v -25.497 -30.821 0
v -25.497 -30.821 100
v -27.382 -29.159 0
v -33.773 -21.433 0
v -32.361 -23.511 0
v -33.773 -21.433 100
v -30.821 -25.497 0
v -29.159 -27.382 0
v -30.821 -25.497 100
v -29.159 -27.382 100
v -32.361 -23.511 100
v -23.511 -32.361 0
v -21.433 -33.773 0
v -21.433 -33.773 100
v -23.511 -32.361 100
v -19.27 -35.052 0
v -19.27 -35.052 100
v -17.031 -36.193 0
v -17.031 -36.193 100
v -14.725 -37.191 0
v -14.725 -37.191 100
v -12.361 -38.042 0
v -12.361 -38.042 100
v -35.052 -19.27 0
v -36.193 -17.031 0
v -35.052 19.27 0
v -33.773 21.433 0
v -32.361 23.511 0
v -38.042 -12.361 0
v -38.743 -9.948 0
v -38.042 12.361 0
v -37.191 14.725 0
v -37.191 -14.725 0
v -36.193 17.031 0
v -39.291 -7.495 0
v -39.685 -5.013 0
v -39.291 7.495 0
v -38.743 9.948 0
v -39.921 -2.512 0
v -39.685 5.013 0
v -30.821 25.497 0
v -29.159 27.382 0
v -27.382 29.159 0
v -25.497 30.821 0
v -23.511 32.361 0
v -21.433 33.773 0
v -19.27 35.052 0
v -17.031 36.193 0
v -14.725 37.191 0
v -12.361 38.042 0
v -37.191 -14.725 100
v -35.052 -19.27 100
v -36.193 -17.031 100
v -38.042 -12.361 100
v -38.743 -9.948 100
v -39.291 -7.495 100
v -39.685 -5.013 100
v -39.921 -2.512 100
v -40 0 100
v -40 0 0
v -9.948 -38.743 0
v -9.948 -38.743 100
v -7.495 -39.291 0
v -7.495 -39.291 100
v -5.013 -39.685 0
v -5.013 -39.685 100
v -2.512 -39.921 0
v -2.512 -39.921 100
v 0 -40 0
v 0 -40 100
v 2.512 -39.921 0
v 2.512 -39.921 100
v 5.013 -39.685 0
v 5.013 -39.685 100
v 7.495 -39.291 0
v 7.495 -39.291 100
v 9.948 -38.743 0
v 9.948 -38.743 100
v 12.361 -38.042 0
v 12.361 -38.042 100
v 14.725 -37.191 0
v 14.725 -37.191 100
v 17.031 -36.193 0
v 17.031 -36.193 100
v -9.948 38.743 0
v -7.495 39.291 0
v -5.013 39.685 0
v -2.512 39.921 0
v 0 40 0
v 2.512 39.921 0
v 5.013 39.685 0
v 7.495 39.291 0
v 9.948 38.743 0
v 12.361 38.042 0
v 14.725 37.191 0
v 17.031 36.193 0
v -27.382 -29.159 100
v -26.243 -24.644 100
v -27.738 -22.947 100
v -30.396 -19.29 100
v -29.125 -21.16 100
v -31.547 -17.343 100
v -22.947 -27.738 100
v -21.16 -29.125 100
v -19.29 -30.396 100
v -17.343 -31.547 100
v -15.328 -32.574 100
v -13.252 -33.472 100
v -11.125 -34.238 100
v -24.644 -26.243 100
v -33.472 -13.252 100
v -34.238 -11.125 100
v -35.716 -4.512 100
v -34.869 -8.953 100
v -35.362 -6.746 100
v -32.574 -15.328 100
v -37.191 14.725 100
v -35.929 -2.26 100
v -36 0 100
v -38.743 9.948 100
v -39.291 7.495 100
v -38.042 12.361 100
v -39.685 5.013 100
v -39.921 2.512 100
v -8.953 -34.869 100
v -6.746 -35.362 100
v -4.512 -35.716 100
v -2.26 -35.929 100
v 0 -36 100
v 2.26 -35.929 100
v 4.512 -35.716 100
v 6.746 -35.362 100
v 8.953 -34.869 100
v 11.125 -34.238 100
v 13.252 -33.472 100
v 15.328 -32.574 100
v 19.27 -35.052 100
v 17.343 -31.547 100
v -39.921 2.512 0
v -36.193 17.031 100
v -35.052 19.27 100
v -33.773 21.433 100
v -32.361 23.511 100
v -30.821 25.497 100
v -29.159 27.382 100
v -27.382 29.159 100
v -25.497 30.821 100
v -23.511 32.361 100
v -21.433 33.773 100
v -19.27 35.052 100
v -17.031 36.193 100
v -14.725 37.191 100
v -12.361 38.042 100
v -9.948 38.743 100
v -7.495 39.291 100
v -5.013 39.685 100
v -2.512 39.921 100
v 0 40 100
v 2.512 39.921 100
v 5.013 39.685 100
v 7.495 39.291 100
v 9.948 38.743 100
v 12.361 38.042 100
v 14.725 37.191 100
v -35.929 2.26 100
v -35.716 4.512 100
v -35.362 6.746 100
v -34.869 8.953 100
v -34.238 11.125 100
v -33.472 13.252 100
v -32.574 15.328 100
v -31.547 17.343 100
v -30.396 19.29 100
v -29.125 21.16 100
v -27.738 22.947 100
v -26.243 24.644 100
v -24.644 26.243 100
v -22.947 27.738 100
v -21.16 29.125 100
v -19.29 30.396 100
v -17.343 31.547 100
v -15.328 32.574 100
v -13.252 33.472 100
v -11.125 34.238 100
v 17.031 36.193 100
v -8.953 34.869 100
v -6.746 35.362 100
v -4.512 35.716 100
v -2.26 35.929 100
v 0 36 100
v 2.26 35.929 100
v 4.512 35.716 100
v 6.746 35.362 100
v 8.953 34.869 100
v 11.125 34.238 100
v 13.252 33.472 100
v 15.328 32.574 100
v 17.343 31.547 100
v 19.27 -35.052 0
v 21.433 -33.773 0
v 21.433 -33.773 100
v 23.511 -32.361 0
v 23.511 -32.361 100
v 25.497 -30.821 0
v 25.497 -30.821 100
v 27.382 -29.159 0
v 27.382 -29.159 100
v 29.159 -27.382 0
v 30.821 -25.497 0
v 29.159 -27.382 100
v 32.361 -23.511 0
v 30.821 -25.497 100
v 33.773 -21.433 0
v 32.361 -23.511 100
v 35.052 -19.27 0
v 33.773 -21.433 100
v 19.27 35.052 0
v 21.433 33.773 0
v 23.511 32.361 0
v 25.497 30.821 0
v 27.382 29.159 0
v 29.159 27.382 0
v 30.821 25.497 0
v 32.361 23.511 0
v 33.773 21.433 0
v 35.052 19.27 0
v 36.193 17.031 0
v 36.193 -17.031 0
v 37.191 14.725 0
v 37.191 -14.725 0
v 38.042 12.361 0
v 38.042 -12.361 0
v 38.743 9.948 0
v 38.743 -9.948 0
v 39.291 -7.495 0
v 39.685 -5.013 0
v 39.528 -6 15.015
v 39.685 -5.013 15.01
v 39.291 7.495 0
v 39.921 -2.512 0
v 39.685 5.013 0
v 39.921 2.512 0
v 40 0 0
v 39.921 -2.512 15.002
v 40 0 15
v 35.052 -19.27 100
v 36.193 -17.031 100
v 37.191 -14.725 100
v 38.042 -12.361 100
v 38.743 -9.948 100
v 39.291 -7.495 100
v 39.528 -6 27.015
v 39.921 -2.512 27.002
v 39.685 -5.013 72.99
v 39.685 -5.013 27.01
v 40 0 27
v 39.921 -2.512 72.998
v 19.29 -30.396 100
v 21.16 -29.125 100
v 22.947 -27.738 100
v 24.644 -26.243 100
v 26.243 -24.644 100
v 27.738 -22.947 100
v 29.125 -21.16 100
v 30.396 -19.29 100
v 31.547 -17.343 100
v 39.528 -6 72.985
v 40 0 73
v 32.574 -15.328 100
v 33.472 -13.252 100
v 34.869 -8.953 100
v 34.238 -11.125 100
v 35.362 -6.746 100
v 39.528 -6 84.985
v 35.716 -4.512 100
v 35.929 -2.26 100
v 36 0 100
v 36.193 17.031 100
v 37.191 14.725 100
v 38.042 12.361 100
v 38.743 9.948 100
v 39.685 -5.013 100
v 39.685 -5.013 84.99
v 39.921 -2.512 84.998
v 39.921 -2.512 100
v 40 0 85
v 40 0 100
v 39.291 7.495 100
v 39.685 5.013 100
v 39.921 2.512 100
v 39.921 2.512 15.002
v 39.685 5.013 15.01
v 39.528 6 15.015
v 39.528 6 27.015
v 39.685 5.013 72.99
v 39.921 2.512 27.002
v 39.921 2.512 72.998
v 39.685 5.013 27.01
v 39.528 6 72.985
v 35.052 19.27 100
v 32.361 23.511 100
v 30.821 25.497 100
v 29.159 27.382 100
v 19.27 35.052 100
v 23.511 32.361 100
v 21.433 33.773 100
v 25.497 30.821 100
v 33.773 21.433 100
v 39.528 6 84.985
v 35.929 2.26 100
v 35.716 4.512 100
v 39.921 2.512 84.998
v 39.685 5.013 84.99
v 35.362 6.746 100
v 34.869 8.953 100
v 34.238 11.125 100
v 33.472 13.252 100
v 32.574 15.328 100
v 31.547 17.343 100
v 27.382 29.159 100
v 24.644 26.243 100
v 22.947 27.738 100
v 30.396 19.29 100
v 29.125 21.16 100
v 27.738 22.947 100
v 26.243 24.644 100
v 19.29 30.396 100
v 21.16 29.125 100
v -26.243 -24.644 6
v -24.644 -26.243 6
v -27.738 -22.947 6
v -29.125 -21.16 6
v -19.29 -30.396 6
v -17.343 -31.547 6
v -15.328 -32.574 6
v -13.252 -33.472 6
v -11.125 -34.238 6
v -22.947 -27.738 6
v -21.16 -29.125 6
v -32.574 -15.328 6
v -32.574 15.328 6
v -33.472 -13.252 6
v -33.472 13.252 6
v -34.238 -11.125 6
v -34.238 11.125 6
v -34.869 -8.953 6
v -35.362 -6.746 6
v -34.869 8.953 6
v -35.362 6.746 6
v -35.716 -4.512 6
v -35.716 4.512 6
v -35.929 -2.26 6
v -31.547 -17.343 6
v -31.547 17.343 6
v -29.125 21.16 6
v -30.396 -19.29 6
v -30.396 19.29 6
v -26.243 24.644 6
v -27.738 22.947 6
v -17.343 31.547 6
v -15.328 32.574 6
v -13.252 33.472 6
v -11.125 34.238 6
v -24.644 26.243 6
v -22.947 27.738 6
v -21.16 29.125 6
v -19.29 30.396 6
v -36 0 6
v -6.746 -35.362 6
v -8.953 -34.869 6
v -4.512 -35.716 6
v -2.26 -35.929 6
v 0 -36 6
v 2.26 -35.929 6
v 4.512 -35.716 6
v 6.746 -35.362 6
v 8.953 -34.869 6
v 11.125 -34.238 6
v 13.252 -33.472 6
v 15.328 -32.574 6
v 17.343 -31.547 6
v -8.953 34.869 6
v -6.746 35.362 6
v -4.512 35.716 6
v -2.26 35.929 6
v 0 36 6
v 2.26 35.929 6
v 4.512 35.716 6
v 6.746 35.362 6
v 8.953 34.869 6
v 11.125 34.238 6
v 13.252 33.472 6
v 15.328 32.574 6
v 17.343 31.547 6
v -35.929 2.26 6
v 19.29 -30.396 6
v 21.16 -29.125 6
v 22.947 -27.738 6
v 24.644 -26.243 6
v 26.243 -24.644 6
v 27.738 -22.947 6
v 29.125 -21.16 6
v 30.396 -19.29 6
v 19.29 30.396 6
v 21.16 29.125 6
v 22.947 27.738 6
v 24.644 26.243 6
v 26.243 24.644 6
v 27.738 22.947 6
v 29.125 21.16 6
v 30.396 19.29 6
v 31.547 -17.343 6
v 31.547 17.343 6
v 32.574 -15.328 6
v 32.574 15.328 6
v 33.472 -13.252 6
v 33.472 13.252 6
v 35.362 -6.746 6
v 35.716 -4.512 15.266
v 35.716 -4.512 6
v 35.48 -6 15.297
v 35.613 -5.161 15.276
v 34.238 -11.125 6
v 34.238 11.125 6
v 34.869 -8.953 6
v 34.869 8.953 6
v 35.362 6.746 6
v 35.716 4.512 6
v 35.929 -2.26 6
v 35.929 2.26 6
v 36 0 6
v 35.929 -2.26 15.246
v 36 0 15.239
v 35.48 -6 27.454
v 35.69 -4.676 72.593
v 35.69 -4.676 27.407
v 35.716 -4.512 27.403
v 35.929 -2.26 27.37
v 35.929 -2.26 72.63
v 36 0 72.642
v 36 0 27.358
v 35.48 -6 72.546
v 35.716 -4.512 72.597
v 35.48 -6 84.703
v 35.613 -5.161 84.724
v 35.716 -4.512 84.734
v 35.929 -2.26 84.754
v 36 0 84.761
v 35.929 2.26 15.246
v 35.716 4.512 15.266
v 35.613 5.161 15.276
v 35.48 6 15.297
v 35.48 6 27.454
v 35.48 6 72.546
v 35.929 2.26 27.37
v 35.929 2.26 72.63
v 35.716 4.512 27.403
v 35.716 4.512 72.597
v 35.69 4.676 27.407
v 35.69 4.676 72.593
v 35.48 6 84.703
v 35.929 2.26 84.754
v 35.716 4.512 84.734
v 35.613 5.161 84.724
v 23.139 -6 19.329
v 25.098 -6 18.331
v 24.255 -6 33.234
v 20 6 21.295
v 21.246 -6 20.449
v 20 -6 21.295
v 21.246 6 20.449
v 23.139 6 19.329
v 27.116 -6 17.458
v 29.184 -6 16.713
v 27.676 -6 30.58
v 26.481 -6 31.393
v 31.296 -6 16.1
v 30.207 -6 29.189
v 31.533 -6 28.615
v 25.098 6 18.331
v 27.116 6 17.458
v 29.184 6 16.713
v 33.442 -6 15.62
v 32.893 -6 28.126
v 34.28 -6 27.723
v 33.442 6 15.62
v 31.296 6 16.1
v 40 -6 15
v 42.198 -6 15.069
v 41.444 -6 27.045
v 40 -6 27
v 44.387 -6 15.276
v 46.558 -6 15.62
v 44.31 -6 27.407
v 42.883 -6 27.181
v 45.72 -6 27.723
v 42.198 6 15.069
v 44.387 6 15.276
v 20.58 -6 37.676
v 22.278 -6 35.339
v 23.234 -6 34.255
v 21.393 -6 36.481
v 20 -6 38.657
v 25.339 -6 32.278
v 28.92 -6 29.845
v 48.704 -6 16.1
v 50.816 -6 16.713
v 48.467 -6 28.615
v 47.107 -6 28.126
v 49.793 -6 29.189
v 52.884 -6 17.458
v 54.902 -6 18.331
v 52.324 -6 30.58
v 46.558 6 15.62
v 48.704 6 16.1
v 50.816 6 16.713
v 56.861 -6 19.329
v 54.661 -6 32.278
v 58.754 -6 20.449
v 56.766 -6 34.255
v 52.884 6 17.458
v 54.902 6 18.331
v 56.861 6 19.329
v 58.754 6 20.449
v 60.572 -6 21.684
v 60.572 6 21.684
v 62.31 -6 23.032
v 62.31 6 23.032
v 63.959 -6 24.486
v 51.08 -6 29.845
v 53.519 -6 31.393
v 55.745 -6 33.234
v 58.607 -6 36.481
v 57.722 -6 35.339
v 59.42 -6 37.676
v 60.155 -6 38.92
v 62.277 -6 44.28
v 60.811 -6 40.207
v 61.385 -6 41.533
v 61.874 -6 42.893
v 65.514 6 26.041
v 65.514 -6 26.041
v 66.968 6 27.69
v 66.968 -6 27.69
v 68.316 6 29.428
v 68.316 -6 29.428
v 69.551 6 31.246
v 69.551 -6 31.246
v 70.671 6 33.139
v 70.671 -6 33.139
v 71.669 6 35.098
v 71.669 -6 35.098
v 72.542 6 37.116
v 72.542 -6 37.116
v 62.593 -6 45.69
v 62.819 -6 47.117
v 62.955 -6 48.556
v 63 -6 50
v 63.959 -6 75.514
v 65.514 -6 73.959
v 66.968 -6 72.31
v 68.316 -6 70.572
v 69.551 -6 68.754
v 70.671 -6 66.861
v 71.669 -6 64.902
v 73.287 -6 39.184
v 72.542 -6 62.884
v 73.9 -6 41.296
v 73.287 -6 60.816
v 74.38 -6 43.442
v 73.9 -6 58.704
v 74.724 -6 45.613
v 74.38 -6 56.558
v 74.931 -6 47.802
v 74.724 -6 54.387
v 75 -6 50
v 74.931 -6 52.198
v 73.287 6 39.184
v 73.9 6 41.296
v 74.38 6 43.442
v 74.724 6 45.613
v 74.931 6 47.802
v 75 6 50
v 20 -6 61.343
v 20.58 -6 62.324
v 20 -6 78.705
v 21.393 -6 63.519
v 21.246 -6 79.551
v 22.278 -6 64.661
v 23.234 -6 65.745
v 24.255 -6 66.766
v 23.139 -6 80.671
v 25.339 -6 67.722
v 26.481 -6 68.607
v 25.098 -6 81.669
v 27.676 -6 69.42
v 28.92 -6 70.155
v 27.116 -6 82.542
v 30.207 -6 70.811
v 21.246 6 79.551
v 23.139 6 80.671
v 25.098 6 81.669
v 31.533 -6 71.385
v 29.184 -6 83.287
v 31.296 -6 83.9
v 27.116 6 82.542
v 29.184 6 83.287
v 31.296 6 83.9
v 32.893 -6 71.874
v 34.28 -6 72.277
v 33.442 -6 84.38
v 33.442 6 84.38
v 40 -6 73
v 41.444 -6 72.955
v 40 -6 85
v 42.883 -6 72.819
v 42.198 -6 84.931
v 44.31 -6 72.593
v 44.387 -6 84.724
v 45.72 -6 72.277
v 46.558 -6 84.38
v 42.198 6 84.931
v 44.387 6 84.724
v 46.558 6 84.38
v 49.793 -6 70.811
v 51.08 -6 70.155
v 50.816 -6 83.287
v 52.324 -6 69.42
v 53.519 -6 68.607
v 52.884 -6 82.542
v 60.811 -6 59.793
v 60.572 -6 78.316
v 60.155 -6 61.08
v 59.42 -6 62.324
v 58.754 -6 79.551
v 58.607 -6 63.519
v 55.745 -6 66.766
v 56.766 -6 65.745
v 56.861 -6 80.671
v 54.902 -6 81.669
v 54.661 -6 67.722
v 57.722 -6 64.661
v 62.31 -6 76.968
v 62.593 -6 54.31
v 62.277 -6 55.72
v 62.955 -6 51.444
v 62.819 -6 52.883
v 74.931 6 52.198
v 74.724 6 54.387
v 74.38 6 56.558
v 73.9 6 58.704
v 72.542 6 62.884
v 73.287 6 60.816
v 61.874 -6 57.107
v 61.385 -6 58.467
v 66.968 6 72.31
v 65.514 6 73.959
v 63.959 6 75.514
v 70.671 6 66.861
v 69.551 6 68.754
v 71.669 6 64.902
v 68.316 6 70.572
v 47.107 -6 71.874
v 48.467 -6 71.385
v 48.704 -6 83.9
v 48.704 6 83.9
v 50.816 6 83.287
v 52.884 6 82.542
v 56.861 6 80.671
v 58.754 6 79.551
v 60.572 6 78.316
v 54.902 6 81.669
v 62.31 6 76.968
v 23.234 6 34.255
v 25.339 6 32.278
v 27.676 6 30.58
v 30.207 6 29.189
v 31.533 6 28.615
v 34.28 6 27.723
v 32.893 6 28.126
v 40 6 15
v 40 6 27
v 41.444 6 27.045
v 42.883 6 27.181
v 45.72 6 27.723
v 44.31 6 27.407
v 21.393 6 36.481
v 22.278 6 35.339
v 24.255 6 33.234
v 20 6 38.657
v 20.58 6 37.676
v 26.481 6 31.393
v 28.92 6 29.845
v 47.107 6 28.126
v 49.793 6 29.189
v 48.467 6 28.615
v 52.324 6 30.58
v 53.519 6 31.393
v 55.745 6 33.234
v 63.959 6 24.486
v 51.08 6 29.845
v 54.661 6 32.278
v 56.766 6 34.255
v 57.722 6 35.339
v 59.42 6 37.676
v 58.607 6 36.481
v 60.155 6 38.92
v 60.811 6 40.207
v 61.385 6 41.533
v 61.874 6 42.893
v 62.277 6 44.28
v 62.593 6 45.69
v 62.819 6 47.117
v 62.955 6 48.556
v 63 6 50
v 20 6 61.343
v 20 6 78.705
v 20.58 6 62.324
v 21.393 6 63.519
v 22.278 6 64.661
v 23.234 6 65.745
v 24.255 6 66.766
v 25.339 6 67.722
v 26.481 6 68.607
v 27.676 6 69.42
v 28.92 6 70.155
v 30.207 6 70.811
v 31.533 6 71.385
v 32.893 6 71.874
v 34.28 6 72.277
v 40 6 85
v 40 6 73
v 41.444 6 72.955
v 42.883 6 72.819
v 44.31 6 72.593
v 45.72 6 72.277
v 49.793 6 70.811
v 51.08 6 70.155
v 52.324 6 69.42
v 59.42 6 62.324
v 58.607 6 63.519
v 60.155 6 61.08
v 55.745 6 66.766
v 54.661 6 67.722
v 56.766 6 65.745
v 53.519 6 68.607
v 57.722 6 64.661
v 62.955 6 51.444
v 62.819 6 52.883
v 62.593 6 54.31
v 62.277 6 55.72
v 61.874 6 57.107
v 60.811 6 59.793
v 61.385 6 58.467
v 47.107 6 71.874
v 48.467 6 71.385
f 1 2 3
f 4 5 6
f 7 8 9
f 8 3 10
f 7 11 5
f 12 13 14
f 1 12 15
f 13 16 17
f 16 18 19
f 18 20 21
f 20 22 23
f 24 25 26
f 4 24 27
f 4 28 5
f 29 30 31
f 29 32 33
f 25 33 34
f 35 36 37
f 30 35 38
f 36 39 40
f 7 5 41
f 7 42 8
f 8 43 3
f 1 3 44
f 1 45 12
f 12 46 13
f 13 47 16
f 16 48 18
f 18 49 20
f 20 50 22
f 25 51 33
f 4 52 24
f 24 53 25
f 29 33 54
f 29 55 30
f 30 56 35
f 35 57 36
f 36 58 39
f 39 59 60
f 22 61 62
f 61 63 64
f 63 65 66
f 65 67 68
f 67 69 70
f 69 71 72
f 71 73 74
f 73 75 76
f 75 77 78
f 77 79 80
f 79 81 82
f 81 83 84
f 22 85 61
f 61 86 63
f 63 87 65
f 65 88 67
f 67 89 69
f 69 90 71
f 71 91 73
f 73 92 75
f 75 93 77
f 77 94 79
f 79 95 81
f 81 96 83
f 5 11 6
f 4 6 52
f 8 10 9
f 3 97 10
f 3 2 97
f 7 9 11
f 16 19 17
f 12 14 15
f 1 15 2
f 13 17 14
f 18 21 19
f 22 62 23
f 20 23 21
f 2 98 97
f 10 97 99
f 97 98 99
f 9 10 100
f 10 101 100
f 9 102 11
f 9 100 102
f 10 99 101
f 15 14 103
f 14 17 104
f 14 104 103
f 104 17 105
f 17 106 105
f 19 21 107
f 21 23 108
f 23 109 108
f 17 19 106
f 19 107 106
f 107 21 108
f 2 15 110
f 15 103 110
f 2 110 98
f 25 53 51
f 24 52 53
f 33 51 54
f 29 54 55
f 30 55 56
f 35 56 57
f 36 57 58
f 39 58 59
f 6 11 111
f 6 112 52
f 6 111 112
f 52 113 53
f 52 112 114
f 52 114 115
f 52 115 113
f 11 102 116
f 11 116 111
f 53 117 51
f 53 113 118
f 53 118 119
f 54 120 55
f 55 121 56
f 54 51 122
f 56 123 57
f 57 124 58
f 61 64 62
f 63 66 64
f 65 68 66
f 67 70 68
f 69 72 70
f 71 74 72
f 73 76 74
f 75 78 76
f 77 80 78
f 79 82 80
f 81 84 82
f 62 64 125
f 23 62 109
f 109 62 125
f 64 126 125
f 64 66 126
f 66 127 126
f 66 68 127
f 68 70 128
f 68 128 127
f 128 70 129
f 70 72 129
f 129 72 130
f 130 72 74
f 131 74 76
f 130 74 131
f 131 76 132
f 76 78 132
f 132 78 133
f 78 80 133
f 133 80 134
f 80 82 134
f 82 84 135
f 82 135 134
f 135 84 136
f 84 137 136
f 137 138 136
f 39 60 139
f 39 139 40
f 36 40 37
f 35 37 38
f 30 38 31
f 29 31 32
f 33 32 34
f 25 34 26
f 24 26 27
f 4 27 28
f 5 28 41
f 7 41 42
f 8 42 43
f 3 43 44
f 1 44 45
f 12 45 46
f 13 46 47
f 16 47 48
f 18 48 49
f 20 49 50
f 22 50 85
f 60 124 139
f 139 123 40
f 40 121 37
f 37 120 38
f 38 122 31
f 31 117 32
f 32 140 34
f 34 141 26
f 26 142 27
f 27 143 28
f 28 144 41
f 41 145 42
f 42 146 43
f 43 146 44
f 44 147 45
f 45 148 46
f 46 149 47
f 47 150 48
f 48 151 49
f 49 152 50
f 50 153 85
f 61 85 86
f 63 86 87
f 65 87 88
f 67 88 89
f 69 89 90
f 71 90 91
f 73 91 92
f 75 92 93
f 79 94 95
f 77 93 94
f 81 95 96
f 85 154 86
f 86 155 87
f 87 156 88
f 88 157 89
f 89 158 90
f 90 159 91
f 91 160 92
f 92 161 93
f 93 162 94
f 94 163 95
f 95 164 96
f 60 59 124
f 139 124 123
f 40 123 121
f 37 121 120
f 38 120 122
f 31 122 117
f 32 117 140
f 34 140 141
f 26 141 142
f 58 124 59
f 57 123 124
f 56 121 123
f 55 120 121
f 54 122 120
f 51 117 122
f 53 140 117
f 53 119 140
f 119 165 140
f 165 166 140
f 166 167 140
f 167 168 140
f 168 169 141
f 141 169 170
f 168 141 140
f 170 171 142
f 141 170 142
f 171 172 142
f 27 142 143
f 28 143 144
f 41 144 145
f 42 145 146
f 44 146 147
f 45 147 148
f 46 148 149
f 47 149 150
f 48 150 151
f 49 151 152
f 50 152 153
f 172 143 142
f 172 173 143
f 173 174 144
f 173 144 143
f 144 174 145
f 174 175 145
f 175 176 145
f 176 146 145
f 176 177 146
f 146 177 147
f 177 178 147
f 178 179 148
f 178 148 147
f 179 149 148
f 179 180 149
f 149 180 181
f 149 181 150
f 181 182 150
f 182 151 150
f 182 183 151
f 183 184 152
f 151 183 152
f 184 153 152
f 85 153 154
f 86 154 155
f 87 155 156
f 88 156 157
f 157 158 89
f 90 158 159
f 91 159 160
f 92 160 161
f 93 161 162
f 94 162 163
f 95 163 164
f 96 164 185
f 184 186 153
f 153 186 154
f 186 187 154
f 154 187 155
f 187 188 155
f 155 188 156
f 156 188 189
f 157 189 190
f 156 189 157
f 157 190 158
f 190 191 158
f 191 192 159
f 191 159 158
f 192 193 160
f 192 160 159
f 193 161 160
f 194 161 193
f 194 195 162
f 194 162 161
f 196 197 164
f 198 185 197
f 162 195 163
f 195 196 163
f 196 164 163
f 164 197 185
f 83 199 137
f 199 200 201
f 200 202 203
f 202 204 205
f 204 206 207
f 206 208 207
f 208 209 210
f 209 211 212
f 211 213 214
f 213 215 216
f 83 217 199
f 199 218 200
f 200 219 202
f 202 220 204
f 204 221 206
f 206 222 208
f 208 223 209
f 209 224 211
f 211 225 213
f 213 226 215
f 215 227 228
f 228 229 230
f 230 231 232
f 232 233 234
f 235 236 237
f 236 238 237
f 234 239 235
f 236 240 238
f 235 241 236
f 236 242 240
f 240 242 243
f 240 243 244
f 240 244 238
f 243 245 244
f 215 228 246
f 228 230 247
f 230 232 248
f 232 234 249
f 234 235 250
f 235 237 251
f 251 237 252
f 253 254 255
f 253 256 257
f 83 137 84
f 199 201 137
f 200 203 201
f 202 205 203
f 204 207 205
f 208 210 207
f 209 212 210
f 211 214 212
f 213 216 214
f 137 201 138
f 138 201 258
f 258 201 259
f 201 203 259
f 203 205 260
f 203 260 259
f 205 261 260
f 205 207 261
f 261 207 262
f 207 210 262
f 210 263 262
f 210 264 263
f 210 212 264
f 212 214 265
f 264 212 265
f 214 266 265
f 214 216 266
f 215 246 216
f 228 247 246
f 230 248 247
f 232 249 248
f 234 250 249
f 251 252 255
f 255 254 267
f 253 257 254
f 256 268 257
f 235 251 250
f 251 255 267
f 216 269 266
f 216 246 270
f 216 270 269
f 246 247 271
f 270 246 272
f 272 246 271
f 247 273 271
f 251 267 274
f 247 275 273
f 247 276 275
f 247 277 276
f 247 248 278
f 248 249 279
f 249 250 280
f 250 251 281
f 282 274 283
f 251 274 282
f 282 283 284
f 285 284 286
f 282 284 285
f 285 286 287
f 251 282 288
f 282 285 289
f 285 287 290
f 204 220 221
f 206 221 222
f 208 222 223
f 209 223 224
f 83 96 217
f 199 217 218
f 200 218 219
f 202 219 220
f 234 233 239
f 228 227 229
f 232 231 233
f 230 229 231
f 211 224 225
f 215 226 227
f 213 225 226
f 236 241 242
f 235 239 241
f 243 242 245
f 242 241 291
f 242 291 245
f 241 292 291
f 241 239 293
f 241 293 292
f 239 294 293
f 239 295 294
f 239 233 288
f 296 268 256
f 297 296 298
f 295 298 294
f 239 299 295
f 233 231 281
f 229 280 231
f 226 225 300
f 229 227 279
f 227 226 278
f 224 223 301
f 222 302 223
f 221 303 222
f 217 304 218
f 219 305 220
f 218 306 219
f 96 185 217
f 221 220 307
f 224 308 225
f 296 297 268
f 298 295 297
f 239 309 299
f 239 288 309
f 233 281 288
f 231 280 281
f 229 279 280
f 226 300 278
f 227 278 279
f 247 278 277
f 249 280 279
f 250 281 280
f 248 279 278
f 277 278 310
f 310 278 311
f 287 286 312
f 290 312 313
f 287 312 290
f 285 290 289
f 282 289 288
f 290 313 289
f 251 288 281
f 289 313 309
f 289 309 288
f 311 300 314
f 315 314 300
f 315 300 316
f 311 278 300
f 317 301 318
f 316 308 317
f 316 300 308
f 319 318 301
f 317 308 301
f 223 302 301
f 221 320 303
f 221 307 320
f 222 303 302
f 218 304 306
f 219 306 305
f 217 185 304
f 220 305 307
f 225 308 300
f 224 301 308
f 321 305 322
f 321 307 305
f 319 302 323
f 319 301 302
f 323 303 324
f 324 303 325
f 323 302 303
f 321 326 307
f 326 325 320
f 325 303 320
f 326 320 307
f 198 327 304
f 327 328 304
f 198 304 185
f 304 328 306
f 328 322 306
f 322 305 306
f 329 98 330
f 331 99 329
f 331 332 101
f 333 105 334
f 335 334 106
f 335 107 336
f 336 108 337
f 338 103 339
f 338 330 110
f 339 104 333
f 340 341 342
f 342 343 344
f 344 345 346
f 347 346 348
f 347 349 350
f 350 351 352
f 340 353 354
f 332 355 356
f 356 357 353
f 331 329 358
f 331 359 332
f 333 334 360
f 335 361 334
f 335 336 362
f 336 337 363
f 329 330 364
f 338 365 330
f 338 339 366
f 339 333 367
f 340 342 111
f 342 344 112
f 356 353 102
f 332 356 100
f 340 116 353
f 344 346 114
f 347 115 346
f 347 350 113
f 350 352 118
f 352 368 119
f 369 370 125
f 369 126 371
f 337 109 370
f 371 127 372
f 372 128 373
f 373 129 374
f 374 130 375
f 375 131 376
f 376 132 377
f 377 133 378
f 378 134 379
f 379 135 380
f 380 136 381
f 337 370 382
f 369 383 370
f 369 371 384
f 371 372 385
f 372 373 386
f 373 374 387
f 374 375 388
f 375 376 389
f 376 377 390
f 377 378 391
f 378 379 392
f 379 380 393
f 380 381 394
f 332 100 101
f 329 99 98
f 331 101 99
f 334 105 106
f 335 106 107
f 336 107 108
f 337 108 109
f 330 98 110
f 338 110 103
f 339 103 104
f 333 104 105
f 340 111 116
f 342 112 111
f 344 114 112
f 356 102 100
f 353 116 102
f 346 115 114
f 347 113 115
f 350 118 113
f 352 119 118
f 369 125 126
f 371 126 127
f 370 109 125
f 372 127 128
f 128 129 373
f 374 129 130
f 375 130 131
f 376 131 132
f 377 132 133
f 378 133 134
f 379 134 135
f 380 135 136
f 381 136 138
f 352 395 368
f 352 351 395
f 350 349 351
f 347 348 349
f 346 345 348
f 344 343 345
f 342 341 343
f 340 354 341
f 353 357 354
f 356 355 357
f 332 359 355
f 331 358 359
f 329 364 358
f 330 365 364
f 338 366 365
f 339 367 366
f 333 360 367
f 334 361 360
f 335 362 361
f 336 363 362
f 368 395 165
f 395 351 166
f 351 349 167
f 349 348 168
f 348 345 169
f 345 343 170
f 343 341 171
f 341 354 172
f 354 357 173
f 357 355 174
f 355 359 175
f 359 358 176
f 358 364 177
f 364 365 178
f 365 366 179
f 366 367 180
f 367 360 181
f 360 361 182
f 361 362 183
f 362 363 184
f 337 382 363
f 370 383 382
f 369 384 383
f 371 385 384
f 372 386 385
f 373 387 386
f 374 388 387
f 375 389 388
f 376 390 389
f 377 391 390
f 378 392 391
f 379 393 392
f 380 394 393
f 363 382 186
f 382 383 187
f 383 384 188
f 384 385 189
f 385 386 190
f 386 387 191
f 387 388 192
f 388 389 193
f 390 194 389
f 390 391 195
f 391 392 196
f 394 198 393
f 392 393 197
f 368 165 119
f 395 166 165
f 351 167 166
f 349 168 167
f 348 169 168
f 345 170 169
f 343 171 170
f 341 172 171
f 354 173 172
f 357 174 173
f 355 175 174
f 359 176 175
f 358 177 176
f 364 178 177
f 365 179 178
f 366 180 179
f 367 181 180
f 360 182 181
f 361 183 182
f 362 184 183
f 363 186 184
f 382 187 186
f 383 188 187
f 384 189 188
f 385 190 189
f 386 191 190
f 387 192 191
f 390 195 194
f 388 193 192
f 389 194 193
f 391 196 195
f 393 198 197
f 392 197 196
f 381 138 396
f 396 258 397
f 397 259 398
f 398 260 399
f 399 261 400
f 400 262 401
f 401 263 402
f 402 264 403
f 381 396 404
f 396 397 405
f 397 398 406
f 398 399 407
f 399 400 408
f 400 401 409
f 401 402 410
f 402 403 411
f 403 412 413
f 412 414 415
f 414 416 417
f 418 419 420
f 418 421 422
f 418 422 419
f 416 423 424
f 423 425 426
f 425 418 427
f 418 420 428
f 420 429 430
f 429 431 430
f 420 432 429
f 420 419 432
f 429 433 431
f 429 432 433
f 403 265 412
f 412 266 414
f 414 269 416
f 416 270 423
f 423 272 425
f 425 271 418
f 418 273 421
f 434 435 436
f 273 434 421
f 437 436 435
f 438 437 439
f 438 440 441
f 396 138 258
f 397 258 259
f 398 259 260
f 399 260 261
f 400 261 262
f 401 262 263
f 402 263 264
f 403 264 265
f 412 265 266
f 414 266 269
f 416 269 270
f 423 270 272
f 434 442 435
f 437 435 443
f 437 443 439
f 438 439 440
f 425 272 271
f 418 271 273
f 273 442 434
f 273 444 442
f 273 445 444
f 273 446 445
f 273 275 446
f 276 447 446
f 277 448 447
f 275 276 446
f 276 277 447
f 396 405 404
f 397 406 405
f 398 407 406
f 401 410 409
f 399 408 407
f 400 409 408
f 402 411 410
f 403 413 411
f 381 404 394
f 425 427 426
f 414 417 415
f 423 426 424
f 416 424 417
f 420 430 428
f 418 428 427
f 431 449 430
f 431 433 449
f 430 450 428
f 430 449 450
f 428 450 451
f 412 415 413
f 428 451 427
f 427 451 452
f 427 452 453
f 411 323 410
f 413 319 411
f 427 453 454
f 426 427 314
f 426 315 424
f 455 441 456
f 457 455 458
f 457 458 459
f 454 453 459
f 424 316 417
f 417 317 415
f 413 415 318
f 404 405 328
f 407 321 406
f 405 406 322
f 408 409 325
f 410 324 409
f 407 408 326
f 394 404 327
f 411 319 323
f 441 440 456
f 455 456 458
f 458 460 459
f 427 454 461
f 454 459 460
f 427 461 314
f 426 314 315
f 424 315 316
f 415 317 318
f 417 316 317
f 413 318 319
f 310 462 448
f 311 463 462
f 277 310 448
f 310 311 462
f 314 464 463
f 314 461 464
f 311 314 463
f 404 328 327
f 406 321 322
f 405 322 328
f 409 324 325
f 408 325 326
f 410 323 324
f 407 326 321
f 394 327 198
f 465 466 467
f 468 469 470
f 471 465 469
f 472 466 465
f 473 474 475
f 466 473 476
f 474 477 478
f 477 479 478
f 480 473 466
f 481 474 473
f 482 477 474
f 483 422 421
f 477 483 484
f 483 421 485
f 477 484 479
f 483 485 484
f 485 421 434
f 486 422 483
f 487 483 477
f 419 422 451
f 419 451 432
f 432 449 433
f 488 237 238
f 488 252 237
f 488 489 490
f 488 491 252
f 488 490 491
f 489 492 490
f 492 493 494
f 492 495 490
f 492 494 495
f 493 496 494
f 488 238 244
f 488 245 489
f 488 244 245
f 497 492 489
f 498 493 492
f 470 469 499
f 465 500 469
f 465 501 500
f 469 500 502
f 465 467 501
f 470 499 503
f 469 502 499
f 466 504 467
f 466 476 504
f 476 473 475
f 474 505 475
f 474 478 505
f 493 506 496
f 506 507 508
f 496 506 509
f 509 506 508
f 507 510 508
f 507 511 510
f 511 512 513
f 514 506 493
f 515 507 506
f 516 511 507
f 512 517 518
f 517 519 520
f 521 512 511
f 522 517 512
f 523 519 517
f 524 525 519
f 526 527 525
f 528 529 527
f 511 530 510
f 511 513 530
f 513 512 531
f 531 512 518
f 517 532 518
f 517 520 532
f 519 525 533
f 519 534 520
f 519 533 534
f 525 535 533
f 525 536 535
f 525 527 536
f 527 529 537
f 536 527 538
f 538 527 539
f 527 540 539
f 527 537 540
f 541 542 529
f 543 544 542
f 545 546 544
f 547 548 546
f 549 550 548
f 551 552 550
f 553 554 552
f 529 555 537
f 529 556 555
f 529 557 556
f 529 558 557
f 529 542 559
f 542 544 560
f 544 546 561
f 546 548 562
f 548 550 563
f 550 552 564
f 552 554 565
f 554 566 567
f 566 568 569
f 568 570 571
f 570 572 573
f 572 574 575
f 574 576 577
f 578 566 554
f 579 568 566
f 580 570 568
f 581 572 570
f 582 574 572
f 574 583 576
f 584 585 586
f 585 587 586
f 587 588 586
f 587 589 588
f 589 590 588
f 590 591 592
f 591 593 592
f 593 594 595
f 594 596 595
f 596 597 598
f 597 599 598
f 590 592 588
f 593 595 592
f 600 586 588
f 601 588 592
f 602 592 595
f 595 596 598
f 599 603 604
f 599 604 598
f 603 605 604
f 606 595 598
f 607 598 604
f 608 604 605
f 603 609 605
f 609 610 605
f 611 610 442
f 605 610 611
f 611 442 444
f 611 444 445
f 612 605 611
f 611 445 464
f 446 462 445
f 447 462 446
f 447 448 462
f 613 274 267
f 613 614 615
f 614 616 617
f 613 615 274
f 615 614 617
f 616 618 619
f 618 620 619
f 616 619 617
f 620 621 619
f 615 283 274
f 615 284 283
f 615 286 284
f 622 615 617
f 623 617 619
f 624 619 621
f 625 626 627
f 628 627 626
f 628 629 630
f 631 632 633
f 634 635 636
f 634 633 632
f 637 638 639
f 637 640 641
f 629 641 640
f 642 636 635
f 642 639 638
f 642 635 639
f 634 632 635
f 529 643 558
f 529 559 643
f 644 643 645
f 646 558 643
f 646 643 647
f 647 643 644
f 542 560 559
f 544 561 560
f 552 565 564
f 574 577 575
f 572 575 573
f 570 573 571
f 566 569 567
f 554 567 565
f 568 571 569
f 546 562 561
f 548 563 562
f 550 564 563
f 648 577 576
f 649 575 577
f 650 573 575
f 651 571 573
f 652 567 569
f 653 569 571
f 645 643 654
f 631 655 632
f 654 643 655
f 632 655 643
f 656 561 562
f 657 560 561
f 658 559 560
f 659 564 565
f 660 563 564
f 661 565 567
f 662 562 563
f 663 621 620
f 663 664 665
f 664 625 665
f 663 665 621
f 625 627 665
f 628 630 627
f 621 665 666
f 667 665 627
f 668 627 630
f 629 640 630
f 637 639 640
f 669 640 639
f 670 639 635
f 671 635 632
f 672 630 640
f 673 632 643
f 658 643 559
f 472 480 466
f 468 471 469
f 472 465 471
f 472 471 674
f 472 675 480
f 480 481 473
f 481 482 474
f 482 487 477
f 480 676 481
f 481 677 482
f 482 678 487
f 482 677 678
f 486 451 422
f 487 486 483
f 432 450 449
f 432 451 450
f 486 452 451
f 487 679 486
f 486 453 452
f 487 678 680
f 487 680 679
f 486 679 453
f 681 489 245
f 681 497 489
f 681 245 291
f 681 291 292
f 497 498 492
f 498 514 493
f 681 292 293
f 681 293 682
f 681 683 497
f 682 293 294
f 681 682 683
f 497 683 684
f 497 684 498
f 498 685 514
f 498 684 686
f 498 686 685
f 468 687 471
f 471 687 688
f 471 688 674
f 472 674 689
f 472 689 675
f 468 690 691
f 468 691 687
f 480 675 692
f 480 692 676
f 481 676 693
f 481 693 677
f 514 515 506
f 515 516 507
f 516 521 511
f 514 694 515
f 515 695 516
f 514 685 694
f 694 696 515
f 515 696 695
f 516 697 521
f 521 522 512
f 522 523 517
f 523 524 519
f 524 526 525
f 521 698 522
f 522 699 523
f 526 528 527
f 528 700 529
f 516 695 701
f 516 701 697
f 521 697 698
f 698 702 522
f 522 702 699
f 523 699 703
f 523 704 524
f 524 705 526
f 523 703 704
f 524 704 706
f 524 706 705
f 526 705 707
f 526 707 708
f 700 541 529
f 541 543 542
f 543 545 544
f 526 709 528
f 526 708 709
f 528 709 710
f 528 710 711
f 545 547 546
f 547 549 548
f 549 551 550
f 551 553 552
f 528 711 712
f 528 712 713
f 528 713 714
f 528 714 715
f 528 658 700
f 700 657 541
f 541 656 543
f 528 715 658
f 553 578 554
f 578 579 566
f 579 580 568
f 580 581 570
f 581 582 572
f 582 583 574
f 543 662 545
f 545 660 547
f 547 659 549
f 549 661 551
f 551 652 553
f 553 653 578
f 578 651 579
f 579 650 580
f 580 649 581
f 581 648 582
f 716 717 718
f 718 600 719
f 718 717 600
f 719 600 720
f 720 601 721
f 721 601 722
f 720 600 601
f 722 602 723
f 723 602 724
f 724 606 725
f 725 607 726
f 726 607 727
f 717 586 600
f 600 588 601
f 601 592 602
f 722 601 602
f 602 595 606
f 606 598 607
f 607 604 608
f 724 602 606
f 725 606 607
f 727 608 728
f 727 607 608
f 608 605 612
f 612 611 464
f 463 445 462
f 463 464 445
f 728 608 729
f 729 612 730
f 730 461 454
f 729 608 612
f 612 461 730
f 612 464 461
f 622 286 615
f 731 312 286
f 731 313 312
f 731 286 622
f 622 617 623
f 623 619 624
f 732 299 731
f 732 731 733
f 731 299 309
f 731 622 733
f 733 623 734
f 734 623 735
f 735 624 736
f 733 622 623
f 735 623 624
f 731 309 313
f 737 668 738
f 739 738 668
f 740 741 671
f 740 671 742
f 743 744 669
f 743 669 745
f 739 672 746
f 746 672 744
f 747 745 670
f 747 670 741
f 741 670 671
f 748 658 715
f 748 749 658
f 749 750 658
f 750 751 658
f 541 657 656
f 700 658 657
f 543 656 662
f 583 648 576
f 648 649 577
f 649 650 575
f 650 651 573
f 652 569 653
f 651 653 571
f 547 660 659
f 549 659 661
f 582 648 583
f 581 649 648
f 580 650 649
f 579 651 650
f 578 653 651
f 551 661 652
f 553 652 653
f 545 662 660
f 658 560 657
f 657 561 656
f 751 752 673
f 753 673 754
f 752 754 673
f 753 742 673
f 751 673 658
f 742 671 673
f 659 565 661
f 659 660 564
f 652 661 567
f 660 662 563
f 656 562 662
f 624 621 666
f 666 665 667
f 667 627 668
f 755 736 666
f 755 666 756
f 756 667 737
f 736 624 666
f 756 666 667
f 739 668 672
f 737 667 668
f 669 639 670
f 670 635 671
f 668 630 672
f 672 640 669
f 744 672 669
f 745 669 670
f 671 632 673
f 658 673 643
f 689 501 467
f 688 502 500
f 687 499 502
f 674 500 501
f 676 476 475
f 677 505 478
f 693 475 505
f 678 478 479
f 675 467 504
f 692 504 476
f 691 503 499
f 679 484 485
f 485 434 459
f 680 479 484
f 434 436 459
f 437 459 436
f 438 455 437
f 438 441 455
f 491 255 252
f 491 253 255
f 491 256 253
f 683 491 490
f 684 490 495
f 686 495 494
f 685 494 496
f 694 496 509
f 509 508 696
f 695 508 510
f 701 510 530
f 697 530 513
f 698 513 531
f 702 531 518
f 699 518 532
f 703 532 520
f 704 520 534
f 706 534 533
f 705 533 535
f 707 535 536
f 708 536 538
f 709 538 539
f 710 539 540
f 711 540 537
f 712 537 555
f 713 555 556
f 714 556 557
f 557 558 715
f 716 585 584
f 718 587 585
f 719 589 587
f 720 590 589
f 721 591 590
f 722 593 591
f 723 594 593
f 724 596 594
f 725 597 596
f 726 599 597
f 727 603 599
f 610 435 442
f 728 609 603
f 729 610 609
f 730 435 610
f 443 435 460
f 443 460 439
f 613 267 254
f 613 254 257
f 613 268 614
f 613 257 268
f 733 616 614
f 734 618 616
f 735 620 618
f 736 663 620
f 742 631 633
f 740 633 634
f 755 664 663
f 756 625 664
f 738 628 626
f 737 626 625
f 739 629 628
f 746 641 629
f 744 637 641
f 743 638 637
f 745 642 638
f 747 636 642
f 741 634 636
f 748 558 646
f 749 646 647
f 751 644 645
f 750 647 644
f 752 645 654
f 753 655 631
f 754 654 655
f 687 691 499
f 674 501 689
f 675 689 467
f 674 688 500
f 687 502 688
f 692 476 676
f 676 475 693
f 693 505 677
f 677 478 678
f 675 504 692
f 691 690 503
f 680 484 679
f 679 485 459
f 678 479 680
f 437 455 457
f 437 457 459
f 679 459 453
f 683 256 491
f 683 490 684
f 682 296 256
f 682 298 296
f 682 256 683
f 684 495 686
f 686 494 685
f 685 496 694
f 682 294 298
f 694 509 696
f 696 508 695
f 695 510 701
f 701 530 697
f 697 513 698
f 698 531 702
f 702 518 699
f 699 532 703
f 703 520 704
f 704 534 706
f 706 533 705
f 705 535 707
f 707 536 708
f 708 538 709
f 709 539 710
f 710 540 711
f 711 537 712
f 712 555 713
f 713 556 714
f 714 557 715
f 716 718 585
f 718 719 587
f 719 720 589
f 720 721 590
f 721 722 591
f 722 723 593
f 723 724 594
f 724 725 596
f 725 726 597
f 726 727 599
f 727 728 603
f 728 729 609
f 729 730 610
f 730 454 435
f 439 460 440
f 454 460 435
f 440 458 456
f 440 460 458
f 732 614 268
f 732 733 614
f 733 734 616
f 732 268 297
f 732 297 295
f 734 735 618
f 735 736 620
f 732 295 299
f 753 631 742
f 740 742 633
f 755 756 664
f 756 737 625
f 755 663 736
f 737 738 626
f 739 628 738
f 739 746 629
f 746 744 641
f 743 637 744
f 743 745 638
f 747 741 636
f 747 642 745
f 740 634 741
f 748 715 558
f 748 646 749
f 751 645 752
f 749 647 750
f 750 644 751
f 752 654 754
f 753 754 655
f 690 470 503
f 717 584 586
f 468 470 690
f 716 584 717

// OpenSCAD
$fn = 100;

// マグカップ本体
difference() {
    // 外側の円柱
    cylinder(h = 100, r = 40, center = false);
    
    // 内側をくり抜く
    translate([0, 0, 6])
        cylinder(h = 100, r = 36, center = false);
}

// 取手
translate([40, 0, 50]) {
    rotate([90, 0, 0]) {
        difference() {
            // 取手の外側リング
            cylinder(h = 12, r = 35, center = true);
            
            // 取手の内側をくり抜く
            cylinder(h = 13, r = 23, center = true);
            
            // カップ本体との接続部分をカット
            translate([-40, 0, 0])
                cube([40, 80, 14], center = true);
        }
    }
}
